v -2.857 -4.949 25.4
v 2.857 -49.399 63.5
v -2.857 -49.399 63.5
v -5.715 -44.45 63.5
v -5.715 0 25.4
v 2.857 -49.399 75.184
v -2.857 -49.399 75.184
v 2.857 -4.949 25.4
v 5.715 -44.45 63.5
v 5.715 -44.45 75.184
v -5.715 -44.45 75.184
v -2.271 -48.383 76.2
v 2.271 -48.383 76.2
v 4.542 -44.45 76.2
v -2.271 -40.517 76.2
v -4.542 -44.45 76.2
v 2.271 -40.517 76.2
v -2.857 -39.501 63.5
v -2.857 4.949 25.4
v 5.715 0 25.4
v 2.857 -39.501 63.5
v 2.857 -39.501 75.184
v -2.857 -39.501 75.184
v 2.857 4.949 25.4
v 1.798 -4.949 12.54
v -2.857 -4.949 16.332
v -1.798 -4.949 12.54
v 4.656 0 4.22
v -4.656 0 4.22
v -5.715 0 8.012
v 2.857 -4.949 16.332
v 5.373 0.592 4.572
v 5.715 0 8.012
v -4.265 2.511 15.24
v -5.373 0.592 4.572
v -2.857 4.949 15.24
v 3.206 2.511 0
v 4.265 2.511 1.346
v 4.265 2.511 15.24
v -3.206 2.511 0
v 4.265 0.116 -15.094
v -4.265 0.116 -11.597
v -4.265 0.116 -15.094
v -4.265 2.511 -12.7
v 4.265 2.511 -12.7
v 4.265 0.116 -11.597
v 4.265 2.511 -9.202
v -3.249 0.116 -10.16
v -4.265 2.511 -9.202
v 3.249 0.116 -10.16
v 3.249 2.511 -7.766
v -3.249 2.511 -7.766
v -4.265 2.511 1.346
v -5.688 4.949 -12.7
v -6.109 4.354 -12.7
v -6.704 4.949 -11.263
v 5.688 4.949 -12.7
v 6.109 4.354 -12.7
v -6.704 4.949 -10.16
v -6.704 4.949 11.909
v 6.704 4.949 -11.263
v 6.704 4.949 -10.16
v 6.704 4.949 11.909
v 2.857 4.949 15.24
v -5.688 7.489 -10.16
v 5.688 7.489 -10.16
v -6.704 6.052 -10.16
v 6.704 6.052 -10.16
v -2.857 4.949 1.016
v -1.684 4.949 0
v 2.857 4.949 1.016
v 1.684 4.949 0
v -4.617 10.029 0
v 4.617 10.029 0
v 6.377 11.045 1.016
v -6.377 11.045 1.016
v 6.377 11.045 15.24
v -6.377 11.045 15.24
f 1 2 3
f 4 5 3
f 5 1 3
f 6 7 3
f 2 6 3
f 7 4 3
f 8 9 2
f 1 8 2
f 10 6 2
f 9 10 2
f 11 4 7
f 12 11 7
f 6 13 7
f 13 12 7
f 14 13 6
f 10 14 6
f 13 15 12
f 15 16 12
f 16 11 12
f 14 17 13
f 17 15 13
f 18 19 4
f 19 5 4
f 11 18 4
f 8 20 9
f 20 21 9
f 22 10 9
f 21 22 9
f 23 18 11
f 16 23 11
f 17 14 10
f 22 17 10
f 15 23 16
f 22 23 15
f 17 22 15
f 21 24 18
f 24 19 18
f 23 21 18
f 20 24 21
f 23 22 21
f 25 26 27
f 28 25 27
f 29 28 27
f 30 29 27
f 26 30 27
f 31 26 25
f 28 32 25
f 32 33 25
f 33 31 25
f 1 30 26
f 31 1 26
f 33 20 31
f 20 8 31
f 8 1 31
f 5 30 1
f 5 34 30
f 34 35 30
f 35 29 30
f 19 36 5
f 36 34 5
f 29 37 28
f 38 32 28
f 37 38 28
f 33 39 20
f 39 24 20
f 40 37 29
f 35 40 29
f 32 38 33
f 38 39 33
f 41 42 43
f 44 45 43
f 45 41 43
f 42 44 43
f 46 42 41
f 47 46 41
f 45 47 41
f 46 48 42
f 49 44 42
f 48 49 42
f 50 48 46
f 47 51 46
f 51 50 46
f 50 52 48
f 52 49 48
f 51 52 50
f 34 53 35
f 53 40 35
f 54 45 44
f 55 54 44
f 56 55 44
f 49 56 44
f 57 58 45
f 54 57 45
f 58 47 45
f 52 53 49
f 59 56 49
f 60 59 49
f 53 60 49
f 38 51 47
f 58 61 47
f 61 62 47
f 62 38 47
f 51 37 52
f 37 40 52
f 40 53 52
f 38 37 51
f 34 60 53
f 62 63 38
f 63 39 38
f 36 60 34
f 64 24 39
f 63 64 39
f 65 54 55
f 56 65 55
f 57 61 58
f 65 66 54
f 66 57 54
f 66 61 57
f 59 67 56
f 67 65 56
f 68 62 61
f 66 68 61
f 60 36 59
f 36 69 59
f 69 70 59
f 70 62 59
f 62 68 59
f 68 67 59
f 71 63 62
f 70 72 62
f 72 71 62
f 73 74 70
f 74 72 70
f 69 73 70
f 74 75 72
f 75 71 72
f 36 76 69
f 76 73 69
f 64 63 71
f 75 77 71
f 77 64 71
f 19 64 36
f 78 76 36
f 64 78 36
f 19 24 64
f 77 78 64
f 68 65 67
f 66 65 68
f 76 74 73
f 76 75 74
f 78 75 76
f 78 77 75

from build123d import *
from OCP.BRepFilletAPI import BRepFilletAPI_MakeChamfer

# Parameters (mm, degrees)
BOSS_EXTRUDE1_DEPTH      = 25.4
BOSS_EXTRUDE2_DEPTH      = 12.7
BOSS_EXTRUDE3_DEPTH      = 15.239999999999998
CHAMFER1_SIZE            = 7.46
CHAMFER1_SIZE2           = 12.540000000000001
BOSS_EXTRUDE4_DEPTH      = 12.7
BOSS_EXTRUDE5_DEPTH      = 24.384
BOSS_EXTRUDE6_DEPTH      = 4.265467
BOSS_EXTRUDE6_DEPTH_BACK = 4.265467
BOSS_EXTRUDE7_DEPTH      = 6.704137
BOSS_EXTRUDE7_DEPTH_BACK = 6.704137
CHAMFER2_SIZE            = 3.556
CHAMFER3_SIZE            = 1.016
CHAMFER3_SIZE2           = 2.1468318359684853
CHAMFER3_SIZE2_2         = 0.7623750143993072


with BuildPart() as part:
    # Sketch1 → Boss-Extrude1 (new body)
    with BuildSketch(Plane.XY):
        Polygon((5.715, 0), (2.8574999999999884, 4.949335182628073), (-2.857500000000022, 4.949335182628053), (-5.715, -3.991e-14), (-2.8574999999999533, -4.949335182628093), (2.8575000000000577, -4.949335182628033), align=None)
    extrude(amount=BOSS_EXTRUDE1_DEPTH)



with BuildPart() as body_2:
    # Sketch2 → Boss-Extrude2 (new body)
    with BuildSketch(Plane.XY.offset(63.5)):
        Polygon((-2.8574999999999533, -49.399335182628086), (2.8575000000000577, -49.399335182628036), (5.714999999999993, -44.45000000000016), (2.8574999999999884, -39.50066481737193), (-2.857500000000022, -39.50066481737194), (-5.715, -44.45000000000003), align=None)
    extrude(amount=BOSS_EXTRUDE2_DEPTH)


with BuildPart() as part_1:
    add(part.part)

    add(body_2.part)  # loft1 joins it to this body
    # loft from a face of the part (loft1)
    loft([part_1.faces().sort_by_distance((4.1e-15, -1.66e-15, 25.4))[0], part_1.faces().sort_by_distance((2.71e-15, -44.45000000000001, 63.5))[0]])

    # Sketch4 → Boss-Extrude3 (add)
    with BuildSketch(Plane(origin=(0, 0, 0), x_dir=(-1, 0, 0), z_dir=(0, 0, -1))):
        Polygon((2.857500000000022, 4.949335182628053), (6.3770272409799595, 11.045335182628051), (-6.377027240979914, 11.04533518262805), (-2.8574999999999884, 4.949335182628073), align=None)
    extrude(amount=-BOSS_EXTRUDE3_DEPTH)

    # Chamfer1
    chamfer1_edges = [part_1.edges().sort_by_distance(p)[0] for p in [
        (5.196e-14, -4.949335182628063, 0),
    ]]
    chamfer1_side = [part_1.faces().sort_by_distance(p)[0] for p in [
        (-7.04e-15, 3.3439435440816787, 0),
    ]]
    chamfer(chamfer1_edges, length=CHAMFER1_SIZE, length2=CHAMFER1_SIZE2, reference=chamfer1_side[0])

    # Sketch5 → Boss-Extrude4 (add)
    with BuildSketch(Plane(origin=(0, 0, 0), x_dir=(-1, 0, 0), z_dir=(0, 0, -1))):
        Polygon((-2.8574999999999884, 4.949335182628073), (2.857500000000022, 4.949335182628053), (4.265466991845397, 2.510664817371916), (-4.265466991845346, 2.5106648173720054), align=None)
    extrude(amount=BOSS_EXTRUDE4_DEPTH)

    # Sketch6 → Boss-Extrude5 (add)
    with BuildSketch(Plane(origin=(0, 0, -12.7), x_dir=(-1, 0, 0), z_dir=(0, 0, -1))):
        Polygon((-4.265466991845346, 2.5106648173720054), (-6.7041373571014065, 4.949335182628073), (-2.8574999999999884, 4.949335182628073), (2.857500000000022, 4.949335182628053), (6.7041373571013665, 4.949335182628074), (4.265466991845397, 2.510664817371916), align=None)
    extrude(amount=-BOSS_EXTRUDE5_DEPTH)

    # Sketch7 → Boss-Extrude6 (add, two sides: drawn at the far end of the back side and taken through both)
    with BuildSketch(Plane(origin=(0, 0, 0), x_dir=(0, 0, -1), z_dir=(1, 0, 0)).offset(-BOSS_EXTRUDE6_DEPTH_BACK)):
        Polygon((7.765575597798472, 2.5106648173720054), (10.159999999999973, 2.5106648173720054), (12.7, 2.5106648173720054), (15.094424402201499, 0.11624041517056517), (10.159999999999973, 0.11624041517056455), align=None)
    extrude(amount=BOSS_EXTRUDE6_DEPTH + BOSS_EXTRUDE6_DEPTH_BACK)

    # Sketch7<3> → Boss-Extrude7 (add, two sides: drawn at the far end of the back side and taken through both)
    with BuildSketch(Plane(origin=(0, 0, 0), x_dir=(0, 0, -1), z_dir=(1, 0, 0)).offset(-BOSS_EXTRUDE7_DEPTH_BACK)):
        Polygon((10.159999999999972, 7.489335182628074), (10.159999999999972, 4.949335182628073), (12.7, 4.949335182628073), align=None)
    extrude(amount=BOSS_EXTRUDE7_DEPTH + BOSS_EXTRUDE7_DEPTH_BACK)

    # Chamfer2
    # the kernel refuses this chamfer: 3.556 mm, written as the material it adds along each edge
    with BuildSketch(Plane(origin=(8.837919344448796, -5.409054972524991, 11.684000000000001), x_dir=(-0.023812127644090044, -0.013747938305293153, 0.9996219169112966), z_dir=(-0.500000000000001, 0.866025403784438, 0))) as chamfer2_piece_1_section:
        Polygon((CHAMFER2_SIZE * 0.999621916911, CHAMFER2_SIZE * 0.0274958766106), (-CHAMFER2_SIZE * 0.0274958766106, CHAMFER2_SIZE * 0.999621916911), (0, 0), align=None)
    chamfer2_piece_1 = extrude(amount=21.10574339410437, mode=Mode.PRIVATE)
    chamfer2_piece_1 = split(chamfer2_piece_1, bisect_by=Plane(origin=(5.0850917452486755, 3.330289570775337, 13.032835155075794), z_dir=(-0.7071067811865487, 0.7071067811865465, 0)), keep=Keep.TOP, mode=Mode.PRIVATE)
    chamfer2_piece_1 = split(chamfer2_piece_1, bisect_by=Plane(origin=(4.3712108447170275, 4.9493351826280785, 13.032835155075794), z_dir=(3.57e-15, -1, 0)), keep=Keep.TOP, mode=Mode.PRIVATE)
    add(chamfer2_piece_1)
    with BuildSketch(Plane(origin=(1.7149523526033228, 12.869054972524992, 11.684000000000001), x_dir=(0.023812127644090457, -0.013747938305293174, 0.9996219169112966), z_dir=(-0.4999999999999951, -0.8660254037844415, 0))) as chamfer2_piece_2_section:
        Polygon((CHAMFER2_SIZE * 0.999621916911, CHAMFER2_SIZE * 0.0274958766106), (-CHAMFER2_SIZE * 0.0274958766106, CHAMFER2_SIZE * 0.999621916911), (0, 0), align=None)
    chamfer2_piece_2 = extrude(amount=21.10574339410434, mode=Mode.PRIVATE)
    chamfer2_piece_2 = split(chamfer2_piece_2, bisect_by=Plane(origin=(-4.371210844717055, 4.949335182628047, 13.032835155075803), z_dir=(3.57e-15, -1, 0)), keep=Keep.TOP, mode=Mode.PRIVATE)
    chamfer2_piece_2 = split(chamfer2_piece_2, bisect_by=Plane(origin=(-5.085091745248726, 3.330289570775309, 13.032835155075805), z_dir=(0.7071067811865749, 0.7071067811865203, 0)), keep=Keep.TOP, mode=Mode.PRIVATE)
    add(chamfer2_piece_2)

    # Chamfer3: one chamfer whose edges measure the first distance from different faces: ONE call of the kernel's chamfer builder (chamfer() names one face for all edges)
    chamfer3_edges_1 = [part_1.edges().sort_by_distance(p)[0] for p in [
        (-4.265467, 1.3134526162712852, -8.962787798899223),
        (4.265467, 1.3134526162712852, -8.962787798899223),
        (-4.617263620489991, 7.997335182628052, 0),
        (-2.309e-14, 11.045335182628051, 0),
        (4.617263620489951, 7.997335182628062, 0),
        (-6.704137, 6.219335182628074, -11.429999999999986),
        (6.704137, 6.219335182628074, -11.429999999999986),
        (5.196e-14, -49.399335182628064, 76.2),
        (-4.286249999999977, -46.92466759131406, 76.2),
        (4.286250000000026, -46.9246675913141, 76.2),
        (-4.286250000000011, -41.975332408685986, 76.2),
        (4.28624999999999, -41.97533240868604, 76.2),
        (-1.688e-14, -39.500664817371934, 76.2),
    ]]
    chamfer3_edges_2 = [part_1.edges().sort_by_distance(p)[0] for p in [
        (-4.286249999999978, -2.4746675913140663, 8.380170027469429),
        (4.286250000000031, -2.4746675913140157, 8.380170027469497),
    ]]
    chamfer3_side_2 = [part_1.faces().sort_by_distance(p)[0] for p in [
        (1.357e-14, -0.9394076954343201, 5.7994516502132),
    ]]
    chamfer3_edges_3 = [part_1.edges().sort_by_distance(p)[0] for p in [
        (-4.990233495922706, 1.255332408685926, 2.1101700274694246),
        (4.990233495922681, 1.2553324086859914, 2.1101700274694926),
    ]]
    chamfer3_side_3 = [part_1.faces().sort_by_distance(p)[0] for p in [
        (1.357e-14, -0.9394076954343201, 5.7994516502132),
    ]]
    chamfer3 = BRepFilletAPI_MakeChamfer(part_1.part.solid().wrapped)
    for e in chamfer3_edges_1:
        chamfer3.Add(CHAMFER3_SIZE, e.wrapped)
    for e in chamfer3_edges_2:
        chamfer3.Add(CHAMFER3_SIZE, CHAMFER3_SIZE2, e.wrapped, chamfer3_side_2[0].wrapped)  # the first distance lies on this face
    for e in chamfer3_edges_3:
        chamfer3.Add(CHAMFER3_SIZE, CHAMFER3_SIZE2_2, e.wrapped, chamfer3_side_3[0].wrapped)  # the first distance lies on this face
    add(Compound.cast(chamfer3.Shape()), mode=Mode.REPLACE)


solid = part_1.part
